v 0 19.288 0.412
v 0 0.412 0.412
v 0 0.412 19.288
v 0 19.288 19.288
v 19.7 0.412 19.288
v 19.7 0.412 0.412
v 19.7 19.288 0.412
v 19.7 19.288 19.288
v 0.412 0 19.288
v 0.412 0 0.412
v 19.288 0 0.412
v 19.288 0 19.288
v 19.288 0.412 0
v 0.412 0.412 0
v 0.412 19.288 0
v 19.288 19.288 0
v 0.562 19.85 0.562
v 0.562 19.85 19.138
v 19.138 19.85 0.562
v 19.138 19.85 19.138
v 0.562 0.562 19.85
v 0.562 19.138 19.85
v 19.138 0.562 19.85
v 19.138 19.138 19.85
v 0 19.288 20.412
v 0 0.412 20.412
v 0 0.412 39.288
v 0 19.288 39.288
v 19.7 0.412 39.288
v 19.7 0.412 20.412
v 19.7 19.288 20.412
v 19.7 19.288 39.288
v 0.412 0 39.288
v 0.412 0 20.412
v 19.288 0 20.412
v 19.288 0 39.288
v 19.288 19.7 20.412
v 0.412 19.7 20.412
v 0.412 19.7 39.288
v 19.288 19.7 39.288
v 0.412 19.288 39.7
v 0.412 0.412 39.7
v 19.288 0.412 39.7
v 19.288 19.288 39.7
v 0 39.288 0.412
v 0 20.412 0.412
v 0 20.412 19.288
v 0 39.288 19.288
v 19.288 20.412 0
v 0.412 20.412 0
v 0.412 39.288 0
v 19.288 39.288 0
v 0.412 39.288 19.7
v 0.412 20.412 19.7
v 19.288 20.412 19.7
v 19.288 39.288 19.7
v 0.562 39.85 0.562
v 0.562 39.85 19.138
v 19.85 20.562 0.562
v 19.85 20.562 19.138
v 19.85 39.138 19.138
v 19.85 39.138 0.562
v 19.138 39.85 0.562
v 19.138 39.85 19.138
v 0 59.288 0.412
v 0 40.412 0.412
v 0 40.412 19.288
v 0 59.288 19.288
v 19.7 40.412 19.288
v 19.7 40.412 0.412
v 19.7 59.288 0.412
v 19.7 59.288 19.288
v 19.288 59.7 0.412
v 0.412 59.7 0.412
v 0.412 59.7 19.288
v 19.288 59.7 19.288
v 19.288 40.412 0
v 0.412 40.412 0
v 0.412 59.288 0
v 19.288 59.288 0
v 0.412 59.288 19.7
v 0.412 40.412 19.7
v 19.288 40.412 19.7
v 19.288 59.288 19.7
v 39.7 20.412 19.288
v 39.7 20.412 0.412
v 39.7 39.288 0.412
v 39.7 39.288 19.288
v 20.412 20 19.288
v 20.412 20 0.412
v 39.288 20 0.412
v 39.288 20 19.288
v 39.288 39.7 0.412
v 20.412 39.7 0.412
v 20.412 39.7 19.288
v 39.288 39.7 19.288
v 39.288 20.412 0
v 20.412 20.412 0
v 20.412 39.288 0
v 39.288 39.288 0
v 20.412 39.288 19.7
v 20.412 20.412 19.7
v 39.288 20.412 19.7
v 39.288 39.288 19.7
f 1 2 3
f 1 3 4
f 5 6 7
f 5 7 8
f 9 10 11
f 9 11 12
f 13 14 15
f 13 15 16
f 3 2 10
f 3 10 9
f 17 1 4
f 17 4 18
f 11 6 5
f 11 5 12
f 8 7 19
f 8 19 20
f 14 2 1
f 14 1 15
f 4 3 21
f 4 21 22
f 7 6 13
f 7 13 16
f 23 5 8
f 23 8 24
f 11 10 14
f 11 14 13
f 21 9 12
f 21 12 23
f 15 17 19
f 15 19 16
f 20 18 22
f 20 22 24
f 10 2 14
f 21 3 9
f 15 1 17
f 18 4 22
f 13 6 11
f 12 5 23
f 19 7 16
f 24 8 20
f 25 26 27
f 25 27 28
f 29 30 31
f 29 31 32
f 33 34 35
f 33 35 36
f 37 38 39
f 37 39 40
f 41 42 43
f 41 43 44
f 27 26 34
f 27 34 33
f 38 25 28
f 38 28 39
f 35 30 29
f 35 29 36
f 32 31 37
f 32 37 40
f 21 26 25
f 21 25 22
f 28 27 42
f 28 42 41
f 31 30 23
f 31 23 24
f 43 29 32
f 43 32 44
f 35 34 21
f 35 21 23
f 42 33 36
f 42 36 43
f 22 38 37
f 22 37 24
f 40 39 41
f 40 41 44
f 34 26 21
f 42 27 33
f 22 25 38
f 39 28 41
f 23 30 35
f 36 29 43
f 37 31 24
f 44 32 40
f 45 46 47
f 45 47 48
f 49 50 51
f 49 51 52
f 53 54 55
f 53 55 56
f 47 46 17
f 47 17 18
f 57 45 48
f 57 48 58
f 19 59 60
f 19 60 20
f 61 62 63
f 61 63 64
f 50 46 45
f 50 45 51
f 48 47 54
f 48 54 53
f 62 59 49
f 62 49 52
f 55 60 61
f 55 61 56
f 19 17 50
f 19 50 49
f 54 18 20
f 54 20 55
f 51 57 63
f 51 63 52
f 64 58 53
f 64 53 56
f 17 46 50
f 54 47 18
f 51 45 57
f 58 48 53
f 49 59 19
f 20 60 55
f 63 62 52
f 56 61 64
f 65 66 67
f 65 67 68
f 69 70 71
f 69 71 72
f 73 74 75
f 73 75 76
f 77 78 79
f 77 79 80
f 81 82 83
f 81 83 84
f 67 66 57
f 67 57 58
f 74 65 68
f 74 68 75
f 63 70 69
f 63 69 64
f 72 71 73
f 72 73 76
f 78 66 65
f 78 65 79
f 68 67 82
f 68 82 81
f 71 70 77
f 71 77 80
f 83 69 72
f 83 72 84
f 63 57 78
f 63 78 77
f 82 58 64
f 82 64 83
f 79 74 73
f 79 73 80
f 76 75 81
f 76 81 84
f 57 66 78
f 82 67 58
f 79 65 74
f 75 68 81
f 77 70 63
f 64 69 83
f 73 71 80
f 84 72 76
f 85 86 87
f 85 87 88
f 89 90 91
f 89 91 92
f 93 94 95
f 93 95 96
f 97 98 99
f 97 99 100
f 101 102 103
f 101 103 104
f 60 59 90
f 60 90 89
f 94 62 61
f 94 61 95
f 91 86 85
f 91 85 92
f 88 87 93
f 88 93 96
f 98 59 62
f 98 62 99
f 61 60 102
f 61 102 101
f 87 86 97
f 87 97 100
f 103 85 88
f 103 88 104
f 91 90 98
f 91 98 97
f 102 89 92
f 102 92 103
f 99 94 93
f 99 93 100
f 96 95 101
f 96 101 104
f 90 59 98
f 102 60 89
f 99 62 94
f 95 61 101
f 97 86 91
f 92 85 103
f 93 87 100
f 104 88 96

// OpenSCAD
// Wongo piece 1: Hello. GPL-3.0.
// 20 mm lattice; 0.15 mm inward surface clearance; 0.5 mm chamfer.
// Mesh is identical to the STL; changing unit scales the complete finished mesh.
unit=20;
scale([unit/20,unit/20,unit/20]) polyhedron(points=[[0,19.28786797,0.41213203],[0,0.41213203,0.41213203],[0,0.41213203,19.28786797],[0,19.28786797,19.28786797],[19.7,0.41213203,19.28786797],[19.7,0.41213203,0.41213203],[19.7,19.28786797,0.41213203],[19.7,19.28786797,19.28786797],[0.41213203,0,19.28786797],[0.41213203,0,0.41213203],[19.28786797,0,0.41213203],[19.28786797,0,19.28786797],[19.28786797,0.41213203,0],[0.41213203,0.41213203,0],[0.41213203,19.28786797,0],[19.28786797,19.28786797,0],[0.56213203,19.85,0.56213203],[0.56213203,19.85,19.13786797],[19.13786797,19.85,0.56213203],[19.13786797,19.85,19.13786797],[0.56213203,0.56213203,19.85],[0.56213203,19.13786797,19.85],[19.13786797,0.56213203,19.85],[19.13786797,19.13786797,19.85],[0,19.28786797,20.41213203],[0,0.41213203,20.41213203],[0,0.41213203,39.28786797],[0,19.28786797,39.28786797],[19.7,0.41213203,39.28786797],[19.7,0.41213203,20.41213203],[19.7,19.28786797,20.41213203],[19.7,19.28786797,39.28786797],[0.41213203,0,39.28786797],[0.41213203,0,20.41213203],[19.28786797,0,20.41213203],[19.28786797,0,39.28786797],[19.28786797,19.7,20.41213203],[0.41213203,19.7,20.41213203],[0.41213203,19.7,39.28786797],[19.28786797,19.7,39.28786797],[0.41213203,19.28786797,39.7],[0.41213203,0.41213203,39.7],[19.28786797,0.41213203,39.7],[19.28786797,19.28786797,39.7],[0,39.28786797,0.41213203],[0,20.41213203,0.41213203],[0,20.41213203,19.28786797],[0,39.28786797,19.28786797],[19.28786797,20.41213203,0],[0.41213203,20.41213203,0],[0.41213203,39.28786797,0],[19.28786797,39.28786797,0],[0.41213203,39.28786797,19.7],[0.41213203,20.41213203,19.7],[19.28786797,20.41213203,19.7],[19.28786797,39.28786797,19.7],[0.56213203,39.85,0.56213203],[0.56213203,39.85,19.13786797],[19.85,20.56213203,0.56213203],[19.85,20.56213203,19.13786797],[19.85,39.13786797,19.13786797],[19.85,39.13786797,0.56213203],[19.13786797,39.85,0.56213203],[19.13786797,39.85,19.13786797],[0,59.28786797,0.41213203],[0,40.41213203,0.41213203],[0,40.41213203,19.28786797],[0,59.28786797,19.28786797],[19.7,40.41213203,19.28786797],[19.7,40.41213203,0.41213203],[19.7,59.28786797,0.41213203],[19.7,59.28786797,19.28786797],[19.28786797,59.7,0.41213203],[0.41213203,59.7,0.41213203],[0.41213203,59.7,19.28786797],[19.28786797,59.7,19.28786797],[19.28786797,40.41213203,0],[0.41213203,40.41213203,0],[0.41213203,59.28786797,0],[19.28786797,59.28786797,0],[0.41213203,59.28786797,19.7],[0.41213203,40.41213203,19.7],[19.28786797,40.41213203,19.7],[19.28786797,59.28786797,19.7],[39.7,20.41213203,19.28786797],[39.7,20.41213203,0.41213203],[39.7,39.28786797,0.41213203],[39.7,39.28786797,19.28786797],[20.41213203,20,19.28786797],[20.41213203,20,0.41213203],[39.28786797,20,0.41213203],[39.28786797,20,19.28786797],[39.28786797,39.7,0.41213203],[20.41213203,39.7,0.41213203],[20.41213203,39.7,19.28786797],[39.28786797,39.7,19.28786797],[39.28786797,20.41213203,0],[20.41213203,20.41213203,0],[20.41213203,39.28786797,0],[39.28786797,39.28786797,0],[20.41213203,39.28786797,19.7],[20.41213203,20.41213203,19.7],[39.28786797,20.41213203,19.7],[39.28786797,39.28786797,19.7]],faces=[[2,1,0],[3,2,0],[6,5,4],[7,6,4],[10,9,8],[11,10,8],[14,13,12],[15,14,12],[9,1,2],[8,9,2],[3,0,16],[17,3,16],[4,5,10],[11,4,10],[18,6,7],[19,18,7],[0,1,13],[14,0,13],[20,2,3],[21,20,3],[12,5,6],[15,12,6],[7,4,22],[23,7,22],[13,9,10],[12,13,10],[11,8,20],[22,11,20],[18,16,14],[15,18,14],[21,17,19],[23,21,19],[13,1,9],[8,2,20],[16,0,14],[21,3,17],[10,5,12],[22,4,11],[15,6,18],[19,7,23],[26,25,24],[27,26,24],[30,29,28],[31,30,28],[34,33,32],[35,34,32],[38,37,36],[39,38,36],[42,41,40],[43,42,40],[33,25,26],[32,33,26],[27,24,37],[38,27,37],[28,29,34],[35,28,34],[36,30,31],[39,36,31],[24,25,20],[21,24,20],[41,26,27],[40,41,27],[22,29,30],[23,22,30],[31,28,42],[43,31,42],[20,33,34],[22,20,34],[35,32,41],[42,35,41],[36,37,21],[23,36,21],[40,38,39],[43,40,39],[20,25,33],[32,26,41],[37,24,21],[40,27,38],[34,29,22],[42,28,35],[23,30,36],[39,31,43],[46,45,44],[47,46,44],[50,49,48],[51,50,48],[54,53,52],[55,54,52],[16,45,46],[17,16,46],[47,44,56],[57,47,56],[59,58,18],[19,59,18],[62,61,60],[63,62,60],[44,45,49],[50,44,49],[53,46,47],[52,53,47],[48,58,61],[51,48,61],[60,59,54],[55,60,54],[49,16,18],[48,49,18],[19,17,53],[54,19,53],[62,56,50],[51,62,50],[52,57,63],[55,52,63],[49,45,16],[17,46,53],[56,44,50],[52,47,57],[18,58,48],[54,59,19],[51,61,62],[63,60,55],[66,65,64],[67,66,64],[70,69,68],[71,70,68],[74,73,72],[75,74,72],[78,77,76],[79,78,76],[82,81,80],[83,82,80],[56,65,66],[57,56,66],[67,64,73],[74,67,73],[68,69,62],[63,68,62],[72,70,71],[75,72,71],[64,65,77],[78,64,77],[81,66,67],[80,81,67],[76,69,70],[79,76,70],[71,68,82],[83,71,82],[77,56,62],[76,77,62],[63,57,81],[82,63,81],[72,73,78],[79,72,78],[80,74,75],[83,80,75],[77,65,56],[57,66,81],[73,64,78],[80,67,74],[62,69,76],[82,68,63],[79,70,72],[75,71,83],[86,85,84],[87,86,84],[90,89,88],[91,90,88],[94,93,92],[95,94,92],[98,97,96],[99,98,96],[102,101,100],[103,102,100],[89,58,59],[88,89,59],[60,61,93],[94,60,93],[84,85,90],[91,84,90],[92,86,87],[95,92,87],[61,58,97],[98,61,97],[101,59,60],[100,101,60],[96,85,86],[99,96,86],[87,84,102],[103,87,102],[97,89,90],[96,97,90],[91,88,101],[102,91,101],[92,93,98],[99,92,98],[100,94,95],[103,100,95],[97,58,89],[88,59,101],[93,61,98],[100,60,94],[90,85,96],[102,84,91],[99,86,92],[95,87,103]],convexity=10);
